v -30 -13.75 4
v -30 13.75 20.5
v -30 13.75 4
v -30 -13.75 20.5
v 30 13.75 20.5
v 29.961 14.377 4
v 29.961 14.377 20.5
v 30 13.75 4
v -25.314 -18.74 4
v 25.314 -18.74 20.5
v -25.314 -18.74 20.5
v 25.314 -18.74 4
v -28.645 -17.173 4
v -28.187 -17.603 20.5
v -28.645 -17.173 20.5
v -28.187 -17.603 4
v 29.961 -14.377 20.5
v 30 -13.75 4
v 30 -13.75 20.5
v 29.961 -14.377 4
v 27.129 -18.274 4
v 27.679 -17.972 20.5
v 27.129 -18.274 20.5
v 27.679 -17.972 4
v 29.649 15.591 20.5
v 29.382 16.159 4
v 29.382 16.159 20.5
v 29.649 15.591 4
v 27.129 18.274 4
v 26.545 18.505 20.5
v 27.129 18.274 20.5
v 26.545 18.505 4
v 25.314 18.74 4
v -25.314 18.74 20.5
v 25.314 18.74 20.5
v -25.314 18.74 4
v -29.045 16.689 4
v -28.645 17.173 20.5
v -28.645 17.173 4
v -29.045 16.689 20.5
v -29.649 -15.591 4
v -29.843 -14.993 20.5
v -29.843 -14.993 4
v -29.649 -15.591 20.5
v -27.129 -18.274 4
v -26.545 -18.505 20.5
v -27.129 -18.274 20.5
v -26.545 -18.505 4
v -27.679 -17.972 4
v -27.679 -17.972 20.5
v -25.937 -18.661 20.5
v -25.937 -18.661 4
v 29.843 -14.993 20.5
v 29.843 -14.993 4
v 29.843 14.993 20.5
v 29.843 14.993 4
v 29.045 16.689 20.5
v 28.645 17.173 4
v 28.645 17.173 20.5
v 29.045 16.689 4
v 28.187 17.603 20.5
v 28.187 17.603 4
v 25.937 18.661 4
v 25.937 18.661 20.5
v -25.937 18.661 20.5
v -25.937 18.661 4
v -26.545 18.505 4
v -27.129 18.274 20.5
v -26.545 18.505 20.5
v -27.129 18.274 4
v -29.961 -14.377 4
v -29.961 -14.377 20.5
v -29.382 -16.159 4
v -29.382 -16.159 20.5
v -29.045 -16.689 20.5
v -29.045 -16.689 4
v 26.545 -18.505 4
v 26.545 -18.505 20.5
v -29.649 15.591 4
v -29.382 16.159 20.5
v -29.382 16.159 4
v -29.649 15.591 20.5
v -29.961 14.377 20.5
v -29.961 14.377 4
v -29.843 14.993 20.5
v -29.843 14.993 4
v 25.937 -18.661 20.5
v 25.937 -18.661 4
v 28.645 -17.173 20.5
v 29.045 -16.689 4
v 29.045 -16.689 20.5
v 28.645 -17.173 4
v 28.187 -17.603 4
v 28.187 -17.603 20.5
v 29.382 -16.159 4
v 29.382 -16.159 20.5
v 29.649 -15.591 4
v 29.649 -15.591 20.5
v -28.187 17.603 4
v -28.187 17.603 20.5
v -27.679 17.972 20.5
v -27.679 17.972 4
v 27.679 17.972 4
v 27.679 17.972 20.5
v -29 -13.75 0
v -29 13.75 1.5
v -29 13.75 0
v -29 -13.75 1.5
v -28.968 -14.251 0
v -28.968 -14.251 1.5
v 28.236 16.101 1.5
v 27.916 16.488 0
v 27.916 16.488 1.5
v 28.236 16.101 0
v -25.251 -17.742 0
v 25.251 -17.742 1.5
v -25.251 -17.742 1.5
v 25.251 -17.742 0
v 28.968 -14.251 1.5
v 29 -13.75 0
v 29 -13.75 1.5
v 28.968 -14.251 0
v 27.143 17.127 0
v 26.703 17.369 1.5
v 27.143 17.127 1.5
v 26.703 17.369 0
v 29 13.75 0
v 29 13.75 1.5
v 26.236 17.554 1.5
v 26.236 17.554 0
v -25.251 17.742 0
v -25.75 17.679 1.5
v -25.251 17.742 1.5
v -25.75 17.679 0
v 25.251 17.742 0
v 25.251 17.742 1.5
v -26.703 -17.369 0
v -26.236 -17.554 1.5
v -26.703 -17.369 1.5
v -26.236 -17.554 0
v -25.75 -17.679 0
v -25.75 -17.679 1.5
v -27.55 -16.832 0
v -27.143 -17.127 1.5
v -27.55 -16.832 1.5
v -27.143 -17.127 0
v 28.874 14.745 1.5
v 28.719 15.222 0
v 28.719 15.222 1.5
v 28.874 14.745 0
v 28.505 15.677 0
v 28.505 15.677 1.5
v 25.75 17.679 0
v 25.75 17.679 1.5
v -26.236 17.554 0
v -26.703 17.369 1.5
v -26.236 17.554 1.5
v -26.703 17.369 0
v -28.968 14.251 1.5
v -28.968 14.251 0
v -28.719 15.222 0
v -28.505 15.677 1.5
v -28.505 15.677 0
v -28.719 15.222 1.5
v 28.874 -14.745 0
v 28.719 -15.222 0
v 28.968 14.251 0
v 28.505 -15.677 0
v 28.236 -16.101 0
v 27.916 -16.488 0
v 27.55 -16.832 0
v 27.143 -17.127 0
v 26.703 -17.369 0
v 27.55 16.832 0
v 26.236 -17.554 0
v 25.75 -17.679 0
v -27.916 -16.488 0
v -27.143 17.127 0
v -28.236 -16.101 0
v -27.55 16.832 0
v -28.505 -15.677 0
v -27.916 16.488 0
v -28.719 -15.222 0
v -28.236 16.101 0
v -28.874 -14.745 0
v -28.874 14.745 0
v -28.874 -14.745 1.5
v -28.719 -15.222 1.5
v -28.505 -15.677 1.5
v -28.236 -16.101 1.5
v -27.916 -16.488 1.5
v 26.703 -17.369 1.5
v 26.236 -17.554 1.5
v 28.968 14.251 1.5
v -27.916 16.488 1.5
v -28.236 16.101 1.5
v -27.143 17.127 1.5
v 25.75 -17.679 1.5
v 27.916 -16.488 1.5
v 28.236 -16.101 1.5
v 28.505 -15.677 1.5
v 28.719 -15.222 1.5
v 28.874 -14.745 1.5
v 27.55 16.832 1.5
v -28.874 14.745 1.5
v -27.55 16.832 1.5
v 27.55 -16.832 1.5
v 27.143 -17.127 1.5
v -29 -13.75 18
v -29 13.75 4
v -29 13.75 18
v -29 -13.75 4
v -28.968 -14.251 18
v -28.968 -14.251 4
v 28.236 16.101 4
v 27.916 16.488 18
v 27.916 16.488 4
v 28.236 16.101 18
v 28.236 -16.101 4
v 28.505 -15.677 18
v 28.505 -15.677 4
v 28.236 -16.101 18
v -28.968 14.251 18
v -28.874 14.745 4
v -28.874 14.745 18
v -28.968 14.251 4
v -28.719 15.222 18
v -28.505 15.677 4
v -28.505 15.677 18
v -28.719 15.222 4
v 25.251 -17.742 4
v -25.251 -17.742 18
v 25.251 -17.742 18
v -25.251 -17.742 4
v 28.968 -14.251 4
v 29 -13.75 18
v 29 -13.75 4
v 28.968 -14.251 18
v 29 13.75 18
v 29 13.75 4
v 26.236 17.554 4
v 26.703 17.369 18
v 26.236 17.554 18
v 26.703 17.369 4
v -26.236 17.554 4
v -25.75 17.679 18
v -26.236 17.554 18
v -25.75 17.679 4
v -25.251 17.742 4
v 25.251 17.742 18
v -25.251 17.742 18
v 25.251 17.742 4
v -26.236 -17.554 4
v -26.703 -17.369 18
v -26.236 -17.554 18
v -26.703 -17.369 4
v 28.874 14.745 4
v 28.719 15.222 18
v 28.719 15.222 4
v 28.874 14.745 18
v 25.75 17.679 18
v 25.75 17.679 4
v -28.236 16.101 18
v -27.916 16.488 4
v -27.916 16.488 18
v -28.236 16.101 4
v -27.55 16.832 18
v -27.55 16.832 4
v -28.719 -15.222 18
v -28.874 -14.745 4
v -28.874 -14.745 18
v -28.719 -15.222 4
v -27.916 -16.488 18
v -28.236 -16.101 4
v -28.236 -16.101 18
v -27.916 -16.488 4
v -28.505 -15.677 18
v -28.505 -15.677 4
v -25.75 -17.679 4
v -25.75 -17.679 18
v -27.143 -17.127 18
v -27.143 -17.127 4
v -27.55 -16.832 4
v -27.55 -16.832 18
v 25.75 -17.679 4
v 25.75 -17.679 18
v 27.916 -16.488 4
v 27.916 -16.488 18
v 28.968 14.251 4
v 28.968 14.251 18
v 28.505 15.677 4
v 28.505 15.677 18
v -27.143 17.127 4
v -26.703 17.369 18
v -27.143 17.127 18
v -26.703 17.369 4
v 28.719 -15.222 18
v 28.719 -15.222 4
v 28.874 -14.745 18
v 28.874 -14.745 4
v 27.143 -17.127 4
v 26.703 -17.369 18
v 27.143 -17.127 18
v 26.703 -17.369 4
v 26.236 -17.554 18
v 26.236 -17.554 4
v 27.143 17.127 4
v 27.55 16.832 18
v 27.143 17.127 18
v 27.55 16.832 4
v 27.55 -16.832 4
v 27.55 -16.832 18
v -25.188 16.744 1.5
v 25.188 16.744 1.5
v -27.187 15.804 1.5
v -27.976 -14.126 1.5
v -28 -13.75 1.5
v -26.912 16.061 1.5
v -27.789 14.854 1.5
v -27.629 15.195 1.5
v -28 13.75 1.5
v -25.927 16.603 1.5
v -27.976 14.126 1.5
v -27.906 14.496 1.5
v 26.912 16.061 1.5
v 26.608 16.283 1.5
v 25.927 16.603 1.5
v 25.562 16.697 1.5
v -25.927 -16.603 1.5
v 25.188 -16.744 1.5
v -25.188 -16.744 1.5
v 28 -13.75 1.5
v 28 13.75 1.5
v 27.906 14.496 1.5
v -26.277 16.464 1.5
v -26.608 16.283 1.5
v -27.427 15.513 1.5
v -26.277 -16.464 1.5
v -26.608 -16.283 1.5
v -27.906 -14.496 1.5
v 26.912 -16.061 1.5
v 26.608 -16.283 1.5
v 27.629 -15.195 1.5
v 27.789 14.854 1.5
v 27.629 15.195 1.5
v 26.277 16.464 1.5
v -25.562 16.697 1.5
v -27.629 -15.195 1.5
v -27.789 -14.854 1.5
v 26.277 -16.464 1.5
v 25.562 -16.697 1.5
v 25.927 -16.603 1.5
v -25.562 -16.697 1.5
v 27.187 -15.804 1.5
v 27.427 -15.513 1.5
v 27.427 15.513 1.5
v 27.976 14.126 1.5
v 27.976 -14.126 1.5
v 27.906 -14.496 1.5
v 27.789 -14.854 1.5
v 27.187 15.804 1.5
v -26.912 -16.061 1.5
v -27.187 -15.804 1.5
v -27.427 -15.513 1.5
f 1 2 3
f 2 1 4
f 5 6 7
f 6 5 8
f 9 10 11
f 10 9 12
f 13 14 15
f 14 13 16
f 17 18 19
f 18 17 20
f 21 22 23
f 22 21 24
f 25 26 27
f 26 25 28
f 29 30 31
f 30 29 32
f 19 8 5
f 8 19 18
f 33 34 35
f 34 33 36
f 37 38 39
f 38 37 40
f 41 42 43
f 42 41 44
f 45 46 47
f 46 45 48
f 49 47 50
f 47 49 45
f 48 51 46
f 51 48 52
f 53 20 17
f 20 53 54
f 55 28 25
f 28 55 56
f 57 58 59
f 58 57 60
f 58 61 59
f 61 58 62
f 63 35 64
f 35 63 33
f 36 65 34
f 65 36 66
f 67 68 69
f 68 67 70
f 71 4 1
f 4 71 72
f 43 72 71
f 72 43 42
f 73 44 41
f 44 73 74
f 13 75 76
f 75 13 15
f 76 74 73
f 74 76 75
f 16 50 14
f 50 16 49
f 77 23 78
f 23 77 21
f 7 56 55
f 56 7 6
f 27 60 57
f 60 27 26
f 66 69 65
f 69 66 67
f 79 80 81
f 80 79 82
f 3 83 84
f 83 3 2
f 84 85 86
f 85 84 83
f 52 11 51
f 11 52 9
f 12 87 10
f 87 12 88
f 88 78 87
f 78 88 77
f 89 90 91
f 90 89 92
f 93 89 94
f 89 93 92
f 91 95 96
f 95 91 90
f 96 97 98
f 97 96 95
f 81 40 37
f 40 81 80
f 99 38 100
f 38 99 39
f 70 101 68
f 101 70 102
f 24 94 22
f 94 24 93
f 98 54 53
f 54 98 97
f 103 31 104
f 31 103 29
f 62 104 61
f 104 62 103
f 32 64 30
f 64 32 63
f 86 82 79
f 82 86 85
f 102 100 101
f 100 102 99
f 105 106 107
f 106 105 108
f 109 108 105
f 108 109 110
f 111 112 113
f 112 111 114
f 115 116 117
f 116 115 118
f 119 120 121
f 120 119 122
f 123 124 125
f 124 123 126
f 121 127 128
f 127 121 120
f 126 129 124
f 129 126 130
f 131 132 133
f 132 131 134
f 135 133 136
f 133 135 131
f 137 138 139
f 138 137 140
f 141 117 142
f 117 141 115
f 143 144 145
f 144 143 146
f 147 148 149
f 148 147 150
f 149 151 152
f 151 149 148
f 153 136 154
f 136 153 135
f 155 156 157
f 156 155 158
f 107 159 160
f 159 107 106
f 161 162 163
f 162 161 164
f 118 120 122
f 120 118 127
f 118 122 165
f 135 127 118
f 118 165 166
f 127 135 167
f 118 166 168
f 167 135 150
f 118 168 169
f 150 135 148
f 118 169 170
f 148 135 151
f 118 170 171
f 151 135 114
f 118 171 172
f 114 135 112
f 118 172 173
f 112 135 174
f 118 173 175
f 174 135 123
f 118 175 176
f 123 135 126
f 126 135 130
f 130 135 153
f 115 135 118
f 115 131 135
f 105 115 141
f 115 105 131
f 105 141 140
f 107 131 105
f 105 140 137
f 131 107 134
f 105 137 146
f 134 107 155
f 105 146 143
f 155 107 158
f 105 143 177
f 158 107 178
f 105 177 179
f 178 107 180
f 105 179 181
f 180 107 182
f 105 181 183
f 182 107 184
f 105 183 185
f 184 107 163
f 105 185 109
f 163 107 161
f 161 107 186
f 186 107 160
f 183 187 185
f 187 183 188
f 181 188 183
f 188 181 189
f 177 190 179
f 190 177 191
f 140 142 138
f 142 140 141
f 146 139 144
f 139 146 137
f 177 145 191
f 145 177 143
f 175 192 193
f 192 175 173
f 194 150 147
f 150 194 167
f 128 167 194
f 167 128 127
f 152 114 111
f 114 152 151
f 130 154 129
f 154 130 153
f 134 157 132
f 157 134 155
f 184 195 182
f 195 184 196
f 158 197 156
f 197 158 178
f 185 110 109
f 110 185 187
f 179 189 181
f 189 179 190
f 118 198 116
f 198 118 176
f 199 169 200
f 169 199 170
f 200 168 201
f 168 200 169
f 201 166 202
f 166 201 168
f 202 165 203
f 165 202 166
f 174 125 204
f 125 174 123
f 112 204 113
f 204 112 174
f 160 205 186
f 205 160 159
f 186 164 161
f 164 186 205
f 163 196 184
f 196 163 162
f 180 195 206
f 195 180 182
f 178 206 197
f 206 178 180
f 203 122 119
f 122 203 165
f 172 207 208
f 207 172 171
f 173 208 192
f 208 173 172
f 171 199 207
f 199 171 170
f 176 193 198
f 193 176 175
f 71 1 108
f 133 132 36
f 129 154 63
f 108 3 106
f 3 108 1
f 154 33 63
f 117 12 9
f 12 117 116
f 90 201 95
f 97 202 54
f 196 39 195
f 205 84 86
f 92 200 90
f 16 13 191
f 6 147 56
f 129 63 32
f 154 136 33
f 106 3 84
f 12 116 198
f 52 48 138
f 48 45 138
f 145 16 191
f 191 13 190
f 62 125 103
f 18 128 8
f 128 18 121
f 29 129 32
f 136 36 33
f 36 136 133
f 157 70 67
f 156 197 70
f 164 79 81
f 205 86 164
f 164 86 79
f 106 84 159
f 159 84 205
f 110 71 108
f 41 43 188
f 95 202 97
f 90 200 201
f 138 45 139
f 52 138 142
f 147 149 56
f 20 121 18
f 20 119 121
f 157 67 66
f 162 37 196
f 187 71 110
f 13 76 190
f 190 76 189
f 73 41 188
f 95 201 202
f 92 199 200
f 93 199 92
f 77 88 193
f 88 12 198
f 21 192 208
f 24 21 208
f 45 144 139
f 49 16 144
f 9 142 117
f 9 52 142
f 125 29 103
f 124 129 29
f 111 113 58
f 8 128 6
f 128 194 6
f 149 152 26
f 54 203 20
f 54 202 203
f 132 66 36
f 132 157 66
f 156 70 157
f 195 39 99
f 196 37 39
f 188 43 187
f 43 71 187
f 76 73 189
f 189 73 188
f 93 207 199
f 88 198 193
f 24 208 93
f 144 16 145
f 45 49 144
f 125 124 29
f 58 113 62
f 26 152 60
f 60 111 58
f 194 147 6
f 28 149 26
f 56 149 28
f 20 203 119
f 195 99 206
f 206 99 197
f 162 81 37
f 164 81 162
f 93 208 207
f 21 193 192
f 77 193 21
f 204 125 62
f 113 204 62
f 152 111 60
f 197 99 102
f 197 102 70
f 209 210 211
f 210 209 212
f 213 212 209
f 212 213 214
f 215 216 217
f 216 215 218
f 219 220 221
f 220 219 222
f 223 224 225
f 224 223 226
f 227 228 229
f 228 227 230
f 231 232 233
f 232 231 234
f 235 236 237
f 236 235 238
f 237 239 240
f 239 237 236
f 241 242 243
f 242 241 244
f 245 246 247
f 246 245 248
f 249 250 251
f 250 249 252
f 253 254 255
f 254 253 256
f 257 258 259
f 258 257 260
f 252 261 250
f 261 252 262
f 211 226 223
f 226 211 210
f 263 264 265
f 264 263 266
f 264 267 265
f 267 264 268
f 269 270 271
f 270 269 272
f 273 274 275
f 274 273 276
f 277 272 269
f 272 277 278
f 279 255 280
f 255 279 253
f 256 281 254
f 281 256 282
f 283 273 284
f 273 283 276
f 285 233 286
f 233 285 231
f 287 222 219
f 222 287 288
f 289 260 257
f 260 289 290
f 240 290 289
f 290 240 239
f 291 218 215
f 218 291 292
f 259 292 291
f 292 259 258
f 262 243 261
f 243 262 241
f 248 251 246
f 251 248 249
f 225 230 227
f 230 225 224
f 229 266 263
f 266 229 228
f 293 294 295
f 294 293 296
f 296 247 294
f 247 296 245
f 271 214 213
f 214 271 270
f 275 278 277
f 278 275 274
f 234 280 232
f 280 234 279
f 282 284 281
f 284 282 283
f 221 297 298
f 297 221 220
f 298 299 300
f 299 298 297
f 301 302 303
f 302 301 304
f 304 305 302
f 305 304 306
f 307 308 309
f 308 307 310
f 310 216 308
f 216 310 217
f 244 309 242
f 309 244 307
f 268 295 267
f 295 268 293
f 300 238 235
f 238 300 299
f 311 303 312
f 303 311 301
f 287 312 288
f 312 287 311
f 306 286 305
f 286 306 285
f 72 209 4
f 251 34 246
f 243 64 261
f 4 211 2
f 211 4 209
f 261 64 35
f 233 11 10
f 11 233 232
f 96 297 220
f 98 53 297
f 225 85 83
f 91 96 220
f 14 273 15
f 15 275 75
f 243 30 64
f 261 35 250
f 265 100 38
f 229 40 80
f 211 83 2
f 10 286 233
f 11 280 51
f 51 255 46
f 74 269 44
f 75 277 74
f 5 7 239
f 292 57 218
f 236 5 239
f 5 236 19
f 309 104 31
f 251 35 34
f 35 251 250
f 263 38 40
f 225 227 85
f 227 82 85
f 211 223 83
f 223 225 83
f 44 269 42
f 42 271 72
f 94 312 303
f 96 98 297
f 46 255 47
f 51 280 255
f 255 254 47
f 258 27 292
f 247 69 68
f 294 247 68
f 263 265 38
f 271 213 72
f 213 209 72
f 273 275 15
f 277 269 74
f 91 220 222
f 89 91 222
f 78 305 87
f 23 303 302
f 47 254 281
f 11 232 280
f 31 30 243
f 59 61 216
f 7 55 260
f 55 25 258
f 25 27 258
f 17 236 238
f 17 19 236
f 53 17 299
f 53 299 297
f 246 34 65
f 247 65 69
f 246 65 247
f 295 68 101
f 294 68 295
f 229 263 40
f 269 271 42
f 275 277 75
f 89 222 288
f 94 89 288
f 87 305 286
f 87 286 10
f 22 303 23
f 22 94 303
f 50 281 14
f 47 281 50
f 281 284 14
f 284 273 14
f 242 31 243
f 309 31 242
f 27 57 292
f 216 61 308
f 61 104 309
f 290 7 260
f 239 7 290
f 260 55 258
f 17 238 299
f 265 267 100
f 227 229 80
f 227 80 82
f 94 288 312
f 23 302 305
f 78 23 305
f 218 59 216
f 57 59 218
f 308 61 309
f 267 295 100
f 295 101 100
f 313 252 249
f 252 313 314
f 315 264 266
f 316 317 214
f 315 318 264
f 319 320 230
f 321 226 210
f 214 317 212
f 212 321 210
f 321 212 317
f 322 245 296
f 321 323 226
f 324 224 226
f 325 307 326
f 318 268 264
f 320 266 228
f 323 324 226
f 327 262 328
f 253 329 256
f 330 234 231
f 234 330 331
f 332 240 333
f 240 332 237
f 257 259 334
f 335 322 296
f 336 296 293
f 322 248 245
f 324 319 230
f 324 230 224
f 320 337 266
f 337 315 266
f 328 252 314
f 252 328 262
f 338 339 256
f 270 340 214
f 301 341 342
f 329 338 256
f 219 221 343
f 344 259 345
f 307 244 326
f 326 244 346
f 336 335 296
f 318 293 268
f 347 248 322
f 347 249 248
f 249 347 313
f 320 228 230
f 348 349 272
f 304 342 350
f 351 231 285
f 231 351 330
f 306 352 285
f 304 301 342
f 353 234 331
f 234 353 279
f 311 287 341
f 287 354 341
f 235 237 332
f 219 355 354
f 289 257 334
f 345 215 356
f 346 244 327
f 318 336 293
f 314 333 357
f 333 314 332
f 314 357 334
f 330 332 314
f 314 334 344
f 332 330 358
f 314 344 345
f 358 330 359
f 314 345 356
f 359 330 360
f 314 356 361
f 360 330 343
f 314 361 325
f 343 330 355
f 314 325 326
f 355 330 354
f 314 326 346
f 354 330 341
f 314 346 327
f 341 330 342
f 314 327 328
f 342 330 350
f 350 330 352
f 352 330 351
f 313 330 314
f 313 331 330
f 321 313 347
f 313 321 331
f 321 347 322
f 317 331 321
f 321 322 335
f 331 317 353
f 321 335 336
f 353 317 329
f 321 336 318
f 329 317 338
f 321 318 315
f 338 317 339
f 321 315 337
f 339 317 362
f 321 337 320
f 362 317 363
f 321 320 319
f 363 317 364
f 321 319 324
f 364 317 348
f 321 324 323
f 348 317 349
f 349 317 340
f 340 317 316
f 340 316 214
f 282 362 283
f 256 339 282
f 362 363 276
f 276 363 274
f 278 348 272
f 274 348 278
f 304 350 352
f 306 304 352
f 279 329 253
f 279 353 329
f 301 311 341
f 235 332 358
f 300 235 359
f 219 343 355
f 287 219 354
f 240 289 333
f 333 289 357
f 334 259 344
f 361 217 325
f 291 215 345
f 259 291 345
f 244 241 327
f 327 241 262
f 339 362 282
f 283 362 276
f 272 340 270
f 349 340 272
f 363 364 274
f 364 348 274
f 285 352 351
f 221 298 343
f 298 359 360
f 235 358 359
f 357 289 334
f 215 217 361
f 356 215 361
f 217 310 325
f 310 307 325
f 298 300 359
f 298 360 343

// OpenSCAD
$fn = 50;


difference() {
	union() {
		translate(v = [0, 0, 4.0000000000]) {
			hull() {
				translate(v = [-25.0000000000, 13.7500000000, 0]) {
					cylinder(h = 16.5000000000, r = 5);
				}
				translate(v = [25.0000000000, 13.7500000000, 0]) {
					cylinder(h = 16.5000000000, r = 5);
				}
				translate(v = [-25.0000000000, -13.7500000000, 0]) {
					cylinder(h = 16.5000000000, r = 5);
				}
				translate(v = [25.0000000000, -13.7500000000, 0]) {
					cylinder(h = 16.5000000000, r = 5);
				}
			}
		}
		hull() {
			translate(v = [-25.0000000000, 13.7500000000, 0]) {
				cylinder(h = 1.5000000000, r = 4);
			}
			translate(v = [25.0000000000, 13.7500000000, 0]) {
				cylinder(h = 1.5000000000, r = 4);
			}
			translate(v = [-25.0000000000, -13.7500000000, 0]) {
				cylinder(h = 1.5000000000, r = 4);
			}
			translate(v = [25.0000000000, -13.7500000000, 0]) {
				cylinder(h = 1.5000000000, r = 4);
			}
		}
		translate(v = [0, 0, 1.5000000000]) {
			hull() {
				translate(v = [-25.0000000000, 13.7500000000, 0]) {
					cylinder(h = 2.5000000000, r1 = 4, r2 = 5.0000000000);
				}
				translate(v = [25.0000000000, 13.7500000000, 0]) {
					cylinder(h = 2.5000000000, r1 = 4, r2 = 5.0000000000);
				}
				translate(v = [-25.0000000000, -13.7500000000, 0]) {
					cylinder(h = 2.5000000000, r1 = 4, r2 = 5.0000000000);
				}
				translate(v = [25.0000000000, -13.7500000000, 0]) {
					cylinder(h = 2.5000000000, r1 = 4, r2 = 5.0000000000);
				}
			}
		}
	}
	union() {
		translate(v = [0, 0, 4.0000000000]) {
			#hull() {
				translate(v = [-25.0000000000, 13.7500000000, 0]) {
					cylinder(h = 16.5000000000, r = 4);
				}
				translate(v = [25.0000000000, 13.7500000000, 0]) {
					cylinder(h = 16.5000000000, r = 4);
				}
				translate(v = [-25.0000000000, -13.7500000000, 0]) {
					cylinder(h = 16.5000000000, r = 4);
				}
				translate(v = [25.0000000000, -13.7500000000, 0]) {
					cylinder(h = 16.5000000000, r = 4);
				}
			}
		}
		translate(v = [0, 0, 18]) {
			hull() {
				translate(v = [-25.0000000000, 13.7500000000, 0]) {
					cylinder(h = 2.5000000000, r1 = 4, r2 = 5.0000000000);
				}
				translate(v = [25.0000000000, 13.7500000000, 0]) {
					cylinder(h = 2.5000000000, r1 = 4, r2 = 5.0000000000);
				}
				translate(v = [-25.0000000000, -13.7500000000, 0]) {
					cylinder(h = 2.5000000000, r1 = 4, r2 = 5.0000000000);
				}
				translate(v = [25.0000000000, -13.7500000000, 0]) {
					cylinder(h = 2.5000000000, r1 = 4, r2 = 5.0000000000);
				}
			}
		}
		translate(v = [0, 0, 1.5000000000]) {
			#hull() {
				translate(v = [-25.0000000000, 13.7500000000, 0]) {
					cylinder(h = 2.5000000000, r1 = 3, r2 = 4.0000000000);
				}
				translate(v = [25.0000000000, 13.7500000000, 0]) {
					cylinder(h = 2.5000000000, r1 = 3, r2 = 4.0000000000);
				}
				translate(v = [-25.0000000000, -13.7500000000, 0]) {
					cylinder(h = 2.5000000000, r1 = 3, r2 = 4.0000000000);
				}
				translate(v = [25.0000000000, -13.7500000000, 0]) {
					cylinder(h = 2.5000000000, r1 = 3, r2 = 4.0000000000);
				}
			}
		}
	}
}
